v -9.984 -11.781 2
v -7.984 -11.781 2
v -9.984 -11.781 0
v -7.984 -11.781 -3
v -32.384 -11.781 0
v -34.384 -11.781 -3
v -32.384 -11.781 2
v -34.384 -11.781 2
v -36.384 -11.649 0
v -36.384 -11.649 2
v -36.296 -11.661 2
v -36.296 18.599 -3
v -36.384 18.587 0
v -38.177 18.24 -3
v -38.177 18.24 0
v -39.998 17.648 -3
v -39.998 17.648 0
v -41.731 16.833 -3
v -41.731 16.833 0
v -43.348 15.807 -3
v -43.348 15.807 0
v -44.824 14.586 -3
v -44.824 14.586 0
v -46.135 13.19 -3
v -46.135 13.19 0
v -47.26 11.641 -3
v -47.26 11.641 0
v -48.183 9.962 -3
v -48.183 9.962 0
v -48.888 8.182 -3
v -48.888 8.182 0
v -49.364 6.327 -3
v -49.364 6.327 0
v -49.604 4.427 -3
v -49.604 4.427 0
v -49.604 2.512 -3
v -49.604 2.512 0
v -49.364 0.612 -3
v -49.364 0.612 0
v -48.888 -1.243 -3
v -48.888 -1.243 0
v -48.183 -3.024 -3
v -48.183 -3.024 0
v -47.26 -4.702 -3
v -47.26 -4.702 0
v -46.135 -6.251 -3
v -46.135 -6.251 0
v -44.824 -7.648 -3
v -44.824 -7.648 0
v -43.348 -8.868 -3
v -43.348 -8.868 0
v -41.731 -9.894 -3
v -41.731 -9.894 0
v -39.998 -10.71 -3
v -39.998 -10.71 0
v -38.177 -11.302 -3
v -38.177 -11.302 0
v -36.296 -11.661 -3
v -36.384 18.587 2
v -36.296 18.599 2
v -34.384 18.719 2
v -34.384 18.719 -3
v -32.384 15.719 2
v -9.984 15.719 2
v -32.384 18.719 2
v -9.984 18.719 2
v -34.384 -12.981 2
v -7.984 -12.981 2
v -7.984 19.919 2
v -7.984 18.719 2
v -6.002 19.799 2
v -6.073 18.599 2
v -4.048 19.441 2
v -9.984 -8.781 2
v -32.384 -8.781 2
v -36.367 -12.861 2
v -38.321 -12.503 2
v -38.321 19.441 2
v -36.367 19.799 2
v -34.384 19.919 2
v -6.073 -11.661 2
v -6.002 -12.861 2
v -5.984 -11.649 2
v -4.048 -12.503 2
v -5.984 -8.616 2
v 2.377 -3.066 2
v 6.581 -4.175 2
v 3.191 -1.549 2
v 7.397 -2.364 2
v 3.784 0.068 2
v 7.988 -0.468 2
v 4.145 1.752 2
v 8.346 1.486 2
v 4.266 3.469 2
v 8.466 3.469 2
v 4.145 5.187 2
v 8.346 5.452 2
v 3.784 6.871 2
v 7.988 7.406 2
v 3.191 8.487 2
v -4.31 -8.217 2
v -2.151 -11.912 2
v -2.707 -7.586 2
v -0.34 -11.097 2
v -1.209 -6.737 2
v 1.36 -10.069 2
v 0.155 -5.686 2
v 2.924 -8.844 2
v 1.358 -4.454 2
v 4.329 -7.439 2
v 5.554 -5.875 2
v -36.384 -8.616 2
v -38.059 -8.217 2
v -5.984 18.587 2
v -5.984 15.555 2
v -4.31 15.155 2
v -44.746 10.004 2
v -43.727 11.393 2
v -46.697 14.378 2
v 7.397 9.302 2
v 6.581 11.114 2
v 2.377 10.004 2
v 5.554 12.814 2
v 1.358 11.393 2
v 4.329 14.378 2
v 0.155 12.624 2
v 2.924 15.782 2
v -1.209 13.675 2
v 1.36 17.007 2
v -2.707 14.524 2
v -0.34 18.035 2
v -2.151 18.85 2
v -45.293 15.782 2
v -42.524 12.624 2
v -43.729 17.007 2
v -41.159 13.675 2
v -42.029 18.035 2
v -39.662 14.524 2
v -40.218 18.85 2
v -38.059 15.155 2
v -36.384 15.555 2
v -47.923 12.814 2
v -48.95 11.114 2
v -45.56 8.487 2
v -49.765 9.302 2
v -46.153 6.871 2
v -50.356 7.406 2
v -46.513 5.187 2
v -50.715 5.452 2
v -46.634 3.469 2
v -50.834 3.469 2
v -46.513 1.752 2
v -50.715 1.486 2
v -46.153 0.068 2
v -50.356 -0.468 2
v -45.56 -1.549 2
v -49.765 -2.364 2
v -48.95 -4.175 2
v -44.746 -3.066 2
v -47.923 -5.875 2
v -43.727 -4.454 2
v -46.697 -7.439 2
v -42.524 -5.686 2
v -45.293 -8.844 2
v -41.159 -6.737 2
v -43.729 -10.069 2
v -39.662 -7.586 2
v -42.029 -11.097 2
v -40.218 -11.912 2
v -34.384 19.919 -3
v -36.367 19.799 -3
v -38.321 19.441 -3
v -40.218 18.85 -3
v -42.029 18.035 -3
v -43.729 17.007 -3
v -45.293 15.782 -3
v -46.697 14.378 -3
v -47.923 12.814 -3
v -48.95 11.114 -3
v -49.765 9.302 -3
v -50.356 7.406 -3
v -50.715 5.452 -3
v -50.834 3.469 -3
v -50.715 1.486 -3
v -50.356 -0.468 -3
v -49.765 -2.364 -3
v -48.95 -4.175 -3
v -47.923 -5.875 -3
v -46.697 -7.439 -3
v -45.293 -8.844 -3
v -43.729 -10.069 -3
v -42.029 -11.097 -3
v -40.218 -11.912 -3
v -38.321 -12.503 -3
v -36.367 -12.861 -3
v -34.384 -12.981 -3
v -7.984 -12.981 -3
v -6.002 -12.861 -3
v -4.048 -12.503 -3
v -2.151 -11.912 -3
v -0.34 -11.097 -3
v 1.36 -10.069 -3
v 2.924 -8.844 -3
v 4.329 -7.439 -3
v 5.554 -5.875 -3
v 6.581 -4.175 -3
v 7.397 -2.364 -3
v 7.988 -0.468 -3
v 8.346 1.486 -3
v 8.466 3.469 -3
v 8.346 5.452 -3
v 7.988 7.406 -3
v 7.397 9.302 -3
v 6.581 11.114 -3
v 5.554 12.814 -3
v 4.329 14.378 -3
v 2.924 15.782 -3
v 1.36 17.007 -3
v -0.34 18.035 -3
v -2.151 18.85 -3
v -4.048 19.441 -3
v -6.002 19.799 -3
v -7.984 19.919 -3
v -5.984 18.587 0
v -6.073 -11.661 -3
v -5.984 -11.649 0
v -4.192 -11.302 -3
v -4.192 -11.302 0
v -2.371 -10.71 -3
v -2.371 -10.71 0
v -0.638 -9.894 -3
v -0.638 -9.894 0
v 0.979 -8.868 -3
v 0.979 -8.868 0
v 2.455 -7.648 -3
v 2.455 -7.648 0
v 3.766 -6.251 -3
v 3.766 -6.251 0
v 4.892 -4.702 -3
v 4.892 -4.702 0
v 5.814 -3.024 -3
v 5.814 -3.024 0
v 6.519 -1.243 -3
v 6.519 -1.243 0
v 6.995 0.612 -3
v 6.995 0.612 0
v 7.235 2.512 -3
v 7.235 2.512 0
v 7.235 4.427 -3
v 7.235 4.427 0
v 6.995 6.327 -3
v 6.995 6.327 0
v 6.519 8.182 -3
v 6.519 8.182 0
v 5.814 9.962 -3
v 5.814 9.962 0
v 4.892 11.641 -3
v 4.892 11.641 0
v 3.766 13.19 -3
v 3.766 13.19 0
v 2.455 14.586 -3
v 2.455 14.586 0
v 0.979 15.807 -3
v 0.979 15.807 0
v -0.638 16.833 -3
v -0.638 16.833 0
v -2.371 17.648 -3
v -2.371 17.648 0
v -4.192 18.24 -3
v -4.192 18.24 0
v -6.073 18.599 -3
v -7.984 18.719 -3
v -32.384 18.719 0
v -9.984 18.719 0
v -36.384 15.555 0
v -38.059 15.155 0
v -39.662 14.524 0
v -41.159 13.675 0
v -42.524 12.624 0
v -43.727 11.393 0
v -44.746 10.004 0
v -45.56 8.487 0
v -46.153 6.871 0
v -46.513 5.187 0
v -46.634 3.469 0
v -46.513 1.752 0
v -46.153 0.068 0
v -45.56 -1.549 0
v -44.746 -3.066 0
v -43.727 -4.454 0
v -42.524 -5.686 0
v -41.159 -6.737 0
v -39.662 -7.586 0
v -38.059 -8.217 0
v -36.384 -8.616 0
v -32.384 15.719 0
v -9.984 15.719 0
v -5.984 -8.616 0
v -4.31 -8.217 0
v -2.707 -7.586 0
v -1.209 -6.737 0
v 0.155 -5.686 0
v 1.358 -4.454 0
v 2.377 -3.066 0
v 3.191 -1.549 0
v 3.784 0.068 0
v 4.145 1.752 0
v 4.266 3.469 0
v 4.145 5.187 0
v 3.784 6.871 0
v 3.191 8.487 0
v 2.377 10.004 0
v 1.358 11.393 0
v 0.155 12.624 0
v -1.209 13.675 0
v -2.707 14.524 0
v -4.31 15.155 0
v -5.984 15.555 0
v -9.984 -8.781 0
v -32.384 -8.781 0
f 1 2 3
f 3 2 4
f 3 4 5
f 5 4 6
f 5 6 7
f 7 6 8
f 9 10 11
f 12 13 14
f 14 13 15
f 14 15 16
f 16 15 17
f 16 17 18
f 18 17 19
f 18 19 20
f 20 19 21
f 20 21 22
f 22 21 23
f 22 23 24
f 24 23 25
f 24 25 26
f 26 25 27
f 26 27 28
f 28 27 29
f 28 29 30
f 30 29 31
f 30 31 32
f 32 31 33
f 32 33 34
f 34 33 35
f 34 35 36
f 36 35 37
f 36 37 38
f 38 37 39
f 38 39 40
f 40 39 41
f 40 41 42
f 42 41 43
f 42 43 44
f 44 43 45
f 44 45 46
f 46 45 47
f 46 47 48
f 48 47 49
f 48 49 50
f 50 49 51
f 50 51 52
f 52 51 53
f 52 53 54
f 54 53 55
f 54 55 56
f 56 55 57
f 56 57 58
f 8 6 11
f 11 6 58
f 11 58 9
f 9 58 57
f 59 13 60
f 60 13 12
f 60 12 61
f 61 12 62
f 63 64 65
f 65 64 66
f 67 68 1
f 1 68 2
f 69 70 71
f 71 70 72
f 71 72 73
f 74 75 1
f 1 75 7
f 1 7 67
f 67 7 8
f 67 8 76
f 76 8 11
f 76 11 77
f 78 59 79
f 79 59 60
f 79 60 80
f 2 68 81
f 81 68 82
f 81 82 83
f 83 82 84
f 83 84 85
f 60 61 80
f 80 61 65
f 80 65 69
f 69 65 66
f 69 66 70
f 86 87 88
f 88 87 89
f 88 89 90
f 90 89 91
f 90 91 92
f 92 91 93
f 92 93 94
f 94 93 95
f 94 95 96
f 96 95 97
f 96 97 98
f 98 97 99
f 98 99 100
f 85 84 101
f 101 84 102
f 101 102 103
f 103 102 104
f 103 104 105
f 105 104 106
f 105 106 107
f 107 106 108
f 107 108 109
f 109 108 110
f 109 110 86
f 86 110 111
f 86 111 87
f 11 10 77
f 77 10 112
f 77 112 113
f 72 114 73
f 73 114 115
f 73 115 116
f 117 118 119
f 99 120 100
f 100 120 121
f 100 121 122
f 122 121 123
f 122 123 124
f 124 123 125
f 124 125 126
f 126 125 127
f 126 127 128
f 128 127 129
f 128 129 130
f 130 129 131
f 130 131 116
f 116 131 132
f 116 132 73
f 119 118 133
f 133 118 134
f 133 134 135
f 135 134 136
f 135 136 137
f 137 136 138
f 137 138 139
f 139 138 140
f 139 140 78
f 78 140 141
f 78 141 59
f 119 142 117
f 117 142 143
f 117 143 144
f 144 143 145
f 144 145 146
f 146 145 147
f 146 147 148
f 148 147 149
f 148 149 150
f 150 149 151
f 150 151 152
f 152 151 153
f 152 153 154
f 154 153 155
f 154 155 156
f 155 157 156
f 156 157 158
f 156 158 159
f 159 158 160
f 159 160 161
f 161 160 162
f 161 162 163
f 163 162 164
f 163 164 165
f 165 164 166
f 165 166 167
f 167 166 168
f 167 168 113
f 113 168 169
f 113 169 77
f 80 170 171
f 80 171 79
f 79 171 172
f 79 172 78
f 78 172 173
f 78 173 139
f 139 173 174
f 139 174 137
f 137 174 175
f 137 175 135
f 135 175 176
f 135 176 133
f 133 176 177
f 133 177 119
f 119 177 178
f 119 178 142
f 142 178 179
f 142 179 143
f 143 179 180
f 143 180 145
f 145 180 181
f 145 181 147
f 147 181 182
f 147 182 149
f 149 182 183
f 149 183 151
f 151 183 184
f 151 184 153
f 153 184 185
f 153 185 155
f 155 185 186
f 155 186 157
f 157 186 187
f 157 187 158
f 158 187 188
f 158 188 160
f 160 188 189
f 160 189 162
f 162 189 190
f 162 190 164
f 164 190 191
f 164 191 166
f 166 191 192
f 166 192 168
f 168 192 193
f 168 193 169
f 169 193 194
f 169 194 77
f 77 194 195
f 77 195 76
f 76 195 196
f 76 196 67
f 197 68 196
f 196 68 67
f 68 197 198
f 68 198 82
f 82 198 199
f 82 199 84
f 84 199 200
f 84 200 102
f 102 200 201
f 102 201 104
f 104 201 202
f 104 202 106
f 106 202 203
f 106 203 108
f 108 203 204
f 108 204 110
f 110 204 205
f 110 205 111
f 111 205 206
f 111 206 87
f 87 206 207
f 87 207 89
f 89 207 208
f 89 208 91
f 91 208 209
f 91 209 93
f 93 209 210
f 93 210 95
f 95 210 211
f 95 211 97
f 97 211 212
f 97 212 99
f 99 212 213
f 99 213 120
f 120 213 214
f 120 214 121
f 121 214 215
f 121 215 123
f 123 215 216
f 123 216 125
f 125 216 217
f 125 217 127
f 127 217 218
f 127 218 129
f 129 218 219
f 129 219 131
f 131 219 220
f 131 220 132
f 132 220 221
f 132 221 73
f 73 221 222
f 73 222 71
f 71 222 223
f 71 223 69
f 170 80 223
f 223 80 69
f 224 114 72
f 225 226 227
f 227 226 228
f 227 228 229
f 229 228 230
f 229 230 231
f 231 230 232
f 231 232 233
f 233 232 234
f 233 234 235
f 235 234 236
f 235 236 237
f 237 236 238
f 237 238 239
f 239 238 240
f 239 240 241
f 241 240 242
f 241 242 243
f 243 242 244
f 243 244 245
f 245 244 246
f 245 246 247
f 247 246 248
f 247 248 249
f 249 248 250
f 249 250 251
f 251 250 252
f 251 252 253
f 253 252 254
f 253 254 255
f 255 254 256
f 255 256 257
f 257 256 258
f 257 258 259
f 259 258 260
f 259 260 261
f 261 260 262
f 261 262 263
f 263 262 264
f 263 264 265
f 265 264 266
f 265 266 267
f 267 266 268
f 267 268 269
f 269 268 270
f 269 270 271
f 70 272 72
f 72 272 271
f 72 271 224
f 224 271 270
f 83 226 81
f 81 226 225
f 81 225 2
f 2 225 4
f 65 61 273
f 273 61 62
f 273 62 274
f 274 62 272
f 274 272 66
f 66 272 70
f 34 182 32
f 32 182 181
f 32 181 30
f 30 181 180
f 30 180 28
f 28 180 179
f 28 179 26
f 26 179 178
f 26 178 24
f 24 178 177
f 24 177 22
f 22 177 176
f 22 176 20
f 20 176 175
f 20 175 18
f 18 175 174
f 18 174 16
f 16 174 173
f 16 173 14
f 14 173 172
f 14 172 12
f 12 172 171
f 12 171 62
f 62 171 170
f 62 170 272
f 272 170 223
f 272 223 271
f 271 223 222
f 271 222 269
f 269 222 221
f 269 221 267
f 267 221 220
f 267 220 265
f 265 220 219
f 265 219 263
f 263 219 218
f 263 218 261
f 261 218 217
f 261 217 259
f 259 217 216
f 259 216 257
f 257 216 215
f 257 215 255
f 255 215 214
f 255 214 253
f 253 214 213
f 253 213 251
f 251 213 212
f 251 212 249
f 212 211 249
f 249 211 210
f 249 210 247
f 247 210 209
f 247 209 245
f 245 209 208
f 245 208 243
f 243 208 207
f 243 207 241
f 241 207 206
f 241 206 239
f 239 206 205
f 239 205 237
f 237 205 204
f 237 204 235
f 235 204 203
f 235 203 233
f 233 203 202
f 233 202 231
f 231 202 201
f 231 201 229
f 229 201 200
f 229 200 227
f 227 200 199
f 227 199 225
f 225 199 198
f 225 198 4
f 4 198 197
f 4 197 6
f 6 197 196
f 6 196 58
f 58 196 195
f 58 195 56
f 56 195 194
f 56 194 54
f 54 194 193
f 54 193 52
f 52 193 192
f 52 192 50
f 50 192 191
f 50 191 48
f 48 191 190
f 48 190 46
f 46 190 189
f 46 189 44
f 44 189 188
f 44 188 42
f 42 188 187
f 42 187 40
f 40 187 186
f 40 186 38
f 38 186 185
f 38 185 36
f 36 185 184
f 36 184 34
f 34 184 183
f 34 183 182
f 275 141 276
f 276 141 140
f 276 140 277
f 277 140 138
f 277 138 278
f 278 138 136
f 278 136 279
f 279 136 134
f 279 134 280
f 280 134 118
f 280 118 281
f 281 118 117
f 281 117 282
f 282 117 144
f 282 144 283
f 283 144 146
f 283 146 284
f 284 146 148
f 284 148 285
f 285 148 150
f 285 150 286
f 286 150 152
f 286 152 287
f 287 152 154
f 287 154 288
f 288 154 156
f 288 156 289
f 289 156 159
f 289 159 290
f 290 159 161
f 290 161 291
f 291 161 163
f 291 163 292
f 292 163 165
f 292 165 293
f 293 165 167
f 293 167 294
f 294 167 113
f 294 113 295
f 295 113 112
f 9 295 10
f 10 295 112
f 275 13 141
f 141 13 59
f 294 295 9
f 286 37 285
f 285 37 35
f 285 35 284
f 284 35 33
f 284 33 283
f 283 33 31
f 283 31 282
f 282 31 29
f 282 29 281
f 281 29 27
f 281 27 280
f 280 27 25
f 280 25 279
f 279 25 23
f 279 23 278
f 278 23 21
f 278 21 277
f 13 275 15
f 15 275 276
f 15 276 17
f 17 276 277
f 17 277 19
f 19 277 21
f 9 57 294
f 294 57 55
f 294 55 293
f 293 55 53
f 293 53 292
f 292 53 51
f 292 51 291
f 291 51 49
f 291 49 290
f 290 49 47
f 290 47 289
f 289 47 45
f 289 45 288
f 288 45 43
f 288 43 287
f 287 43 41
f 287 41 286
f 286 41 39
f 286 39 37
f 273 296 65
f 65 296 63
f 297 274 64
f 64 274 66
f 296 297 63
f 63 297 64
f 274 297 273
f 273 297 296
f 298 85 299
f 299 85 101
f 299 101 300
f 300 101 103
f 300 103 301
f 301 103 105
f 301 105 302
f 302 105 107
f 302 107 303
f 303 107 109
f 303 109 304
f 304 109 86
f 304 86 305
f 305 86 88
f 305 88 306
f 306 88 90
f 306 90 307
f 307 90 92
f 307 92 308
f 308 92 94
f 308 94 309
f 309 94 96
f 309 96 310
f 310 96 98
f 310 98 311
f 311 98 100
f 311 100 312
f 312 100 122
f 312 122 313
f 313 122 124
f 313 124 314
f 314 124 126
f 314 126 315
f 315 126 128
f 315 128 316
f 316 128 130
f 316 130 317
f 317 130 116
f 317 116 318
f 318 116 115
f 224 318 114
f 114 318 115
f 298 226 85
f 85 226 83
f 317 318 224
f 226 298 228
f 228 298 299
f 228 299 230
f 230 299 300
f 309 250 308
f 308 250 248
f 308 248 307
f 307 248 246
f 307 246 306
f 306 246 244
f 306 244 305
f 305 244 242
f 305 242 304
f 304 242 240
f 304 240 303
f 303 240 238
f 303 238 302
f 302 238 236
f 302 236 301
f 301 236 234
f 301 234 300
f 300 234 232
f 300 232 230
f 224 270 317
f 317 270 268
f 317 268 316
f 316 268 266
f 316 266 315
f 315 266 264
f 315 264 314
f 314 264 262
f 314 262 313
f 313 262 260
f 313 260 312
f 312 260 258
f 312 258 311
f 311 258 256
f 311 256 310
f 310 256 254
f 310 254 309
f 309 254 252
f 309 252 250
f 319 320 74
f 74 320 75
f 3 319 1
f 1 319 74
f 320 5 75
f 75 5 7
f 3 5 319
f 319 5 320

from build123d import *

# Parameters (mm, degrees)
BOSS_EXTRUDE1_DEPTH      = 2
BOSS_EXTRUDE1_DEPTH_BACK = 3
BOSS_EXTRUDE2_START      = -2
SKETCH2_W                = 22.4
SKETCH2_H                = 3
BOSS_EXTRUDE2_DEPTH      = 2


with BuildPart() as part:
    # Sketch1 → Boss-Extrude1 (new, two sides: drawn at the far end of the back side and taken through both)
    with BuildSketch(Plane.XY.offset(-BOSS_EXTRUDE1_DEPTH_BACK)):
        with BuildLine():
            Line((-34.384444189, 19.919216619), (-7.984444189, 19.919216619))
            ThreePointArc((-7.984444189, 19.919216619), (8.465555811, 3.469216619), (-7.984444189, -12.980783381))
            Line((-7.984444189, -12.980783381), (-34.384444189, -12.980783381))
            ThreePointArc((-34.384444189, -12.980783381), (-50.834444189, 3.469216619), (-34.384444189, 19.919216619))
        make_face()
        with BuildLine():
            Line((-34.384444189, 18.719216619), (-7.984444189, 18.719216619))
            ThreePointArc((-7.984444189, 18.719216619), (7.265555811, 3.469216619), (-7.984444189, -11.780783381))
            Line((-7.984444189, -11.780783381), (-34.384444189, -11.780783381))
            ThreePointArc((-34.384444189, -11.780783381), (-49.634444189, 3.469216619), (-34.384444189, 18.719216619))
        make_face(mode=Mode.SUBTRACT)
    extrude(amount=BOSS_EXTRUDE1_DEPTH + BOSS_EXTRUDE1_DEPTH_BACK)

    # Sketch2 → Boss-Extrude2 (add)
    with BuildSketch(Plane.XY.offset(2).offset(BOSS_EXTRUDE2_START)):
        with BuildLine():
            ThreePointArc((-5.984444189, -11.649067014), (7.265555811, 3.469216619), (-5.984444189, 18.587500252))
            Line((-5.984444189, 18.587500252), (-5.984444189, 15.554848584))
            ThreePointArc((-5.984444189, 15.554848584), (4.265555811, 3.469216619), (-5.984444189, -8.616415346))
            Line((-5.984444189, -8.616415346), (-5.984444189, -11.649067014))
        make_face()
        with Locations((-21.184444189, 17.219216619)):
            Rectangle(SKETCH2_W, SKETCH2_H)
        with Locations((-21.184444189, -10.280783381)):
            Rectangle(SKETCH2_W, SKETCH2_H)
        with BuildLine():
            ThreePointArc((-36.384444189, -8.616415346), (-46.634444189, 3.469216619), (-36.384444189, 15.554848584))
            Line((-36.384444189, 15.554848584), (-36.384444189, 18.587500252))
            ThreePointArc((-36.384444189, 18.587500252), (-49.634444189, 3.469216619), (-36.384444189, -11.649067014))
            Line((-36.384444189, -11.649067014), (-36.384444189, -8.616415346))
        make_face()
    extrude(amount=BOSS_EXTRUDE2_DEPTH)


solid = part.part
